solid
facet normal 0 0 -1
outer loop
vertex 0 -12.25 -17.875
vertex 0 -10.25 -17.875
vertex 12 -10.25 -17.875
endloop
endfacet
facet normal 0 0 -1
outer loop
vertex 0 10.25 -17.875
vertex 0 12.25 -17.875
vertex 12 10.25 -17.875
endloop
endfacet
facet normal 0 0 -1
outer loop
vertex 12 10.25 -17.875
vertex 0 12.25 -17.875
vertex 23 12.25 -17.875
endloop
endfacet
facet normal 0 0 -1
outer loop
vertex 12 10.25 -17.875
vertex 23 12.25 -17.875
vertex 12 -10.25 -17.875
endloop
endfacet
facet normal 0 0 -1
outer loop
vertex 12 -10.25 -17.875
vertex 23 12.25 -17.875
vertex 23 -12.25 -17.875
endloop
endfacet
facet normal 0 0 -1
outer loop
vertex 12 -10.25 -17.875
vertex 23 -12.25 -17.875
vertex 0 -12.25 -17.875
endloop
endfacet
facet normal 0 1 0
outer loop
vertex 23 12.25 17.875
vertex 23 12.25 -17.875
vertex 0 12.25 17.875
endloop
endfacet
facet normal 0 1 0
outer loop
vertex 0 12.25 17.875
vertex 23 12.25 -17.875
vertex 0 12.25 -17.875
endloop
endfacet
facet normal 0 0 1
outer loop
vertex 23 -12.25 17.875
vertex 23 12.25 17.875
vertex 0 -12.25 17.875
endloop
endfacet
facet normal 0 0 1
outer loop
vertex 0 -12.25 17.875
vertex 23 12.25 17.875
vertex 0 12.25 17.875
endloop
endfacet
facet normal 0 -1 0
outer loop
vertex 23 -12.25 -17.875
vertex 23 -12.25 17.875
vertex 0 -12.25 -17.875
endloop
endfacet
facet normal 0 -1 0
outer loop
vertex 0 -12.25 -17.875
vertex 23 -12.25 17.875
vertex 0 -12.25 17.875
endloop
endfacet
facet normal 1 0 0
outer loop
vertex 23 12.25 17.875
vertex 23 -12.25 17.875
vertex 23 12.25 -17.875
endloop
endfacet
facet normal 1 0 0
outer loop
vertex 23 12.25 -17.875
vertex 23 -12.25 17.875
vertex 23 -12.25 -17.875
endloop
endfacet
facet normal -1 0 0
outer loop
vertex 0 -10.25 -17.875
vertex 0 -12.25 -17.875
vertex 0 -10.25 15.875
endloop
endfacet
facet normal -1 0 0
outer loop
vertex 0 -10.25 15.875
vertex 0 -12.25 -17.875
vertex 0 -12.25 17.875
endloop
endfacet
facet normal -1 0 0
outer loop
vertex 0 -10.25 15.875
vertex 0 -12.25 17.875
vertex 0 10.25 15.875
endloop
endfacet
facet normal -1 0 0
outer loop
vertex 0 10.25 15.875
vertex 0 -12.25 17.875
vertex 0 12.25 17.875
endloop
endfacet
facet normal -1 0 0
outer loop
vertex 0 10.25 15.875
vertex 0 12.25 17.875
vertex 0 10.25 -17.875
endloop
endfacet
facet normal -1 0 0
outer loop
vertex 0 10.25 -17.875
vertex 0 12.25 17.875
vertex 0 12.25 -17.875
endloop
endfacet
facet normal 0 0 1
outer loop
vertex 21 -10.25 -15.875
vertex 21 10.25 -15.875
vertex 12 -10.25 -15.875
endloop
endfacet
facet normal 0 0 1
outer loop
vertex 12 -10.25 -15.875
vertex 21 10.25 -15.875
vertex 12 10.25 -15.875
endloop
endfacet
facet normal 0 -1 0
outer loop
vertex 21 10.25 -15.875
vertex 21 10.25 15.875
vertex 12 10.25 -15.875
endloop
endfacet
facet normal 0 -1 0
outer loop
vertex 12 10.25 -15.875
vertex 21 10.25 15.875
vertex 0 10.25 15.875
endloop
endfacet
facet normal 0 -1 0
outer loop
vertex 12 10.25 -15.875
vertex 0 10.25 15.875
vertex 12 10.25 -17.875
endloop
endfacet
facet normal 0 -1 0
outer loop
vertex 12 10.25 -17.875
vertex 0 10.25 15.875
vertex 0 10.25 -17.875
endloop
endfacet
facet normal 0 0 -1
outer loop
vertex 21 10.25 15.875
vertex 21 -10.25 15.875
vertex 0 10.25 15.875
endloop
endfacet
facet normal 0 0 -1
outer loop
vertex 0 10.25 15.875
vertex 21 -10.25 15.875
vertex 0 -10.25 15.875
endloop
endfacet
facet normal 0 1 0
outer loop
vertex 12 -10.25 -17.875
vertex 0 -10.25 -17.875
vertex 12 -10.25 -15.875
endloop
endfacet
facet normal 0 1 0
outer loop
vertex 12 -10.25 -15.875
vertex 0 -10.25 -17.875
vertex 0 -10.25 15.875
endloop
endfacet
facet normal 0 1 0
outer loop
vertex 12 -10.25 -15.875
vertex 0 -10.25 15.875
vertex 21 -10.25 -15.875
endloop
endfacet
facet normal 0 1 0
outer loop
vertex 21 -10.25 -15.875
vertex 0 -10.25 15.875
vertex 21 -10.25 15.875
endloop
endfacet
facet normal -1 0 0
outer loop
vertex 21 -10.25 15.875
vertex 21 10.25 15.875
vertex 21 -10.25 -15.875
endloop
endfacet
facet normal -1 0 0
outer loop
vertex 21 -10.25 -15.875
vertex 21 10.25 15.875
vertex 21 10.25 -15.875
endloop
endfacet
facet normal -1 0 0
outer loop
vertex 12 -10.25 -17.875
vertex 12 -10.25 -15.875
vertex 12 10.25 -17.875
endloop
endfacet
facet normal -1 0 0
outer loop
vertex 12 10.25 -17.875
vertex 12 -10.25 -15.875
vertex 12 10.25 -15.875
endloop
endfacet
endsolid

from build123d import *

# Parameters (mm, degrees)
SKETCH4_W           = 31.75
SKETCH4_H           = 20.5
BOSS_EXTRUDE1_DEPTH = 21
SHELL1_T            = 2
SKETCH5_W           = 12
SKETCH5_H           = 20.5
CUT_EXTRUDE1_DEPTH  = 2


with BuildPart() as part:
    # Sketch4 → Boss-Extrude1 (new body)
    with BuildSketch(Plane(origin=(0, 0, 0), x_dir=(0, 0, -1), z_dir=(1, 0, 0))):
        Rectangle(SKETCH4_W, SKETCH4_H)
    extrude(amount=BOSS_EXTRUDE1_DEPTH)

    # Shell1
    shell1_openings = [part.faces().sort_by_distance(p)[0] for p in [
        (0, 0, 0),
    ]]
    offset(amount=SHELL1_T, openings=shell1_openings, kind=Kind.INTERSECTION)

    # Sketch5 → Cut-Extrude1 (cut)
    with BuildSketch(Plane(origin=(0, 0, -17.875), x_dir=(-1, 0, 0), z_dir=(0, 0, -1))):
        with Locations((-6, 0)):
            Rectangle(SKETCH5_W, SKETCH5_H)
    extrude(amount=-CUT_EXTRUDE1_DEPTH, mode=Mode.SUBTRACT)


solid = part.part
